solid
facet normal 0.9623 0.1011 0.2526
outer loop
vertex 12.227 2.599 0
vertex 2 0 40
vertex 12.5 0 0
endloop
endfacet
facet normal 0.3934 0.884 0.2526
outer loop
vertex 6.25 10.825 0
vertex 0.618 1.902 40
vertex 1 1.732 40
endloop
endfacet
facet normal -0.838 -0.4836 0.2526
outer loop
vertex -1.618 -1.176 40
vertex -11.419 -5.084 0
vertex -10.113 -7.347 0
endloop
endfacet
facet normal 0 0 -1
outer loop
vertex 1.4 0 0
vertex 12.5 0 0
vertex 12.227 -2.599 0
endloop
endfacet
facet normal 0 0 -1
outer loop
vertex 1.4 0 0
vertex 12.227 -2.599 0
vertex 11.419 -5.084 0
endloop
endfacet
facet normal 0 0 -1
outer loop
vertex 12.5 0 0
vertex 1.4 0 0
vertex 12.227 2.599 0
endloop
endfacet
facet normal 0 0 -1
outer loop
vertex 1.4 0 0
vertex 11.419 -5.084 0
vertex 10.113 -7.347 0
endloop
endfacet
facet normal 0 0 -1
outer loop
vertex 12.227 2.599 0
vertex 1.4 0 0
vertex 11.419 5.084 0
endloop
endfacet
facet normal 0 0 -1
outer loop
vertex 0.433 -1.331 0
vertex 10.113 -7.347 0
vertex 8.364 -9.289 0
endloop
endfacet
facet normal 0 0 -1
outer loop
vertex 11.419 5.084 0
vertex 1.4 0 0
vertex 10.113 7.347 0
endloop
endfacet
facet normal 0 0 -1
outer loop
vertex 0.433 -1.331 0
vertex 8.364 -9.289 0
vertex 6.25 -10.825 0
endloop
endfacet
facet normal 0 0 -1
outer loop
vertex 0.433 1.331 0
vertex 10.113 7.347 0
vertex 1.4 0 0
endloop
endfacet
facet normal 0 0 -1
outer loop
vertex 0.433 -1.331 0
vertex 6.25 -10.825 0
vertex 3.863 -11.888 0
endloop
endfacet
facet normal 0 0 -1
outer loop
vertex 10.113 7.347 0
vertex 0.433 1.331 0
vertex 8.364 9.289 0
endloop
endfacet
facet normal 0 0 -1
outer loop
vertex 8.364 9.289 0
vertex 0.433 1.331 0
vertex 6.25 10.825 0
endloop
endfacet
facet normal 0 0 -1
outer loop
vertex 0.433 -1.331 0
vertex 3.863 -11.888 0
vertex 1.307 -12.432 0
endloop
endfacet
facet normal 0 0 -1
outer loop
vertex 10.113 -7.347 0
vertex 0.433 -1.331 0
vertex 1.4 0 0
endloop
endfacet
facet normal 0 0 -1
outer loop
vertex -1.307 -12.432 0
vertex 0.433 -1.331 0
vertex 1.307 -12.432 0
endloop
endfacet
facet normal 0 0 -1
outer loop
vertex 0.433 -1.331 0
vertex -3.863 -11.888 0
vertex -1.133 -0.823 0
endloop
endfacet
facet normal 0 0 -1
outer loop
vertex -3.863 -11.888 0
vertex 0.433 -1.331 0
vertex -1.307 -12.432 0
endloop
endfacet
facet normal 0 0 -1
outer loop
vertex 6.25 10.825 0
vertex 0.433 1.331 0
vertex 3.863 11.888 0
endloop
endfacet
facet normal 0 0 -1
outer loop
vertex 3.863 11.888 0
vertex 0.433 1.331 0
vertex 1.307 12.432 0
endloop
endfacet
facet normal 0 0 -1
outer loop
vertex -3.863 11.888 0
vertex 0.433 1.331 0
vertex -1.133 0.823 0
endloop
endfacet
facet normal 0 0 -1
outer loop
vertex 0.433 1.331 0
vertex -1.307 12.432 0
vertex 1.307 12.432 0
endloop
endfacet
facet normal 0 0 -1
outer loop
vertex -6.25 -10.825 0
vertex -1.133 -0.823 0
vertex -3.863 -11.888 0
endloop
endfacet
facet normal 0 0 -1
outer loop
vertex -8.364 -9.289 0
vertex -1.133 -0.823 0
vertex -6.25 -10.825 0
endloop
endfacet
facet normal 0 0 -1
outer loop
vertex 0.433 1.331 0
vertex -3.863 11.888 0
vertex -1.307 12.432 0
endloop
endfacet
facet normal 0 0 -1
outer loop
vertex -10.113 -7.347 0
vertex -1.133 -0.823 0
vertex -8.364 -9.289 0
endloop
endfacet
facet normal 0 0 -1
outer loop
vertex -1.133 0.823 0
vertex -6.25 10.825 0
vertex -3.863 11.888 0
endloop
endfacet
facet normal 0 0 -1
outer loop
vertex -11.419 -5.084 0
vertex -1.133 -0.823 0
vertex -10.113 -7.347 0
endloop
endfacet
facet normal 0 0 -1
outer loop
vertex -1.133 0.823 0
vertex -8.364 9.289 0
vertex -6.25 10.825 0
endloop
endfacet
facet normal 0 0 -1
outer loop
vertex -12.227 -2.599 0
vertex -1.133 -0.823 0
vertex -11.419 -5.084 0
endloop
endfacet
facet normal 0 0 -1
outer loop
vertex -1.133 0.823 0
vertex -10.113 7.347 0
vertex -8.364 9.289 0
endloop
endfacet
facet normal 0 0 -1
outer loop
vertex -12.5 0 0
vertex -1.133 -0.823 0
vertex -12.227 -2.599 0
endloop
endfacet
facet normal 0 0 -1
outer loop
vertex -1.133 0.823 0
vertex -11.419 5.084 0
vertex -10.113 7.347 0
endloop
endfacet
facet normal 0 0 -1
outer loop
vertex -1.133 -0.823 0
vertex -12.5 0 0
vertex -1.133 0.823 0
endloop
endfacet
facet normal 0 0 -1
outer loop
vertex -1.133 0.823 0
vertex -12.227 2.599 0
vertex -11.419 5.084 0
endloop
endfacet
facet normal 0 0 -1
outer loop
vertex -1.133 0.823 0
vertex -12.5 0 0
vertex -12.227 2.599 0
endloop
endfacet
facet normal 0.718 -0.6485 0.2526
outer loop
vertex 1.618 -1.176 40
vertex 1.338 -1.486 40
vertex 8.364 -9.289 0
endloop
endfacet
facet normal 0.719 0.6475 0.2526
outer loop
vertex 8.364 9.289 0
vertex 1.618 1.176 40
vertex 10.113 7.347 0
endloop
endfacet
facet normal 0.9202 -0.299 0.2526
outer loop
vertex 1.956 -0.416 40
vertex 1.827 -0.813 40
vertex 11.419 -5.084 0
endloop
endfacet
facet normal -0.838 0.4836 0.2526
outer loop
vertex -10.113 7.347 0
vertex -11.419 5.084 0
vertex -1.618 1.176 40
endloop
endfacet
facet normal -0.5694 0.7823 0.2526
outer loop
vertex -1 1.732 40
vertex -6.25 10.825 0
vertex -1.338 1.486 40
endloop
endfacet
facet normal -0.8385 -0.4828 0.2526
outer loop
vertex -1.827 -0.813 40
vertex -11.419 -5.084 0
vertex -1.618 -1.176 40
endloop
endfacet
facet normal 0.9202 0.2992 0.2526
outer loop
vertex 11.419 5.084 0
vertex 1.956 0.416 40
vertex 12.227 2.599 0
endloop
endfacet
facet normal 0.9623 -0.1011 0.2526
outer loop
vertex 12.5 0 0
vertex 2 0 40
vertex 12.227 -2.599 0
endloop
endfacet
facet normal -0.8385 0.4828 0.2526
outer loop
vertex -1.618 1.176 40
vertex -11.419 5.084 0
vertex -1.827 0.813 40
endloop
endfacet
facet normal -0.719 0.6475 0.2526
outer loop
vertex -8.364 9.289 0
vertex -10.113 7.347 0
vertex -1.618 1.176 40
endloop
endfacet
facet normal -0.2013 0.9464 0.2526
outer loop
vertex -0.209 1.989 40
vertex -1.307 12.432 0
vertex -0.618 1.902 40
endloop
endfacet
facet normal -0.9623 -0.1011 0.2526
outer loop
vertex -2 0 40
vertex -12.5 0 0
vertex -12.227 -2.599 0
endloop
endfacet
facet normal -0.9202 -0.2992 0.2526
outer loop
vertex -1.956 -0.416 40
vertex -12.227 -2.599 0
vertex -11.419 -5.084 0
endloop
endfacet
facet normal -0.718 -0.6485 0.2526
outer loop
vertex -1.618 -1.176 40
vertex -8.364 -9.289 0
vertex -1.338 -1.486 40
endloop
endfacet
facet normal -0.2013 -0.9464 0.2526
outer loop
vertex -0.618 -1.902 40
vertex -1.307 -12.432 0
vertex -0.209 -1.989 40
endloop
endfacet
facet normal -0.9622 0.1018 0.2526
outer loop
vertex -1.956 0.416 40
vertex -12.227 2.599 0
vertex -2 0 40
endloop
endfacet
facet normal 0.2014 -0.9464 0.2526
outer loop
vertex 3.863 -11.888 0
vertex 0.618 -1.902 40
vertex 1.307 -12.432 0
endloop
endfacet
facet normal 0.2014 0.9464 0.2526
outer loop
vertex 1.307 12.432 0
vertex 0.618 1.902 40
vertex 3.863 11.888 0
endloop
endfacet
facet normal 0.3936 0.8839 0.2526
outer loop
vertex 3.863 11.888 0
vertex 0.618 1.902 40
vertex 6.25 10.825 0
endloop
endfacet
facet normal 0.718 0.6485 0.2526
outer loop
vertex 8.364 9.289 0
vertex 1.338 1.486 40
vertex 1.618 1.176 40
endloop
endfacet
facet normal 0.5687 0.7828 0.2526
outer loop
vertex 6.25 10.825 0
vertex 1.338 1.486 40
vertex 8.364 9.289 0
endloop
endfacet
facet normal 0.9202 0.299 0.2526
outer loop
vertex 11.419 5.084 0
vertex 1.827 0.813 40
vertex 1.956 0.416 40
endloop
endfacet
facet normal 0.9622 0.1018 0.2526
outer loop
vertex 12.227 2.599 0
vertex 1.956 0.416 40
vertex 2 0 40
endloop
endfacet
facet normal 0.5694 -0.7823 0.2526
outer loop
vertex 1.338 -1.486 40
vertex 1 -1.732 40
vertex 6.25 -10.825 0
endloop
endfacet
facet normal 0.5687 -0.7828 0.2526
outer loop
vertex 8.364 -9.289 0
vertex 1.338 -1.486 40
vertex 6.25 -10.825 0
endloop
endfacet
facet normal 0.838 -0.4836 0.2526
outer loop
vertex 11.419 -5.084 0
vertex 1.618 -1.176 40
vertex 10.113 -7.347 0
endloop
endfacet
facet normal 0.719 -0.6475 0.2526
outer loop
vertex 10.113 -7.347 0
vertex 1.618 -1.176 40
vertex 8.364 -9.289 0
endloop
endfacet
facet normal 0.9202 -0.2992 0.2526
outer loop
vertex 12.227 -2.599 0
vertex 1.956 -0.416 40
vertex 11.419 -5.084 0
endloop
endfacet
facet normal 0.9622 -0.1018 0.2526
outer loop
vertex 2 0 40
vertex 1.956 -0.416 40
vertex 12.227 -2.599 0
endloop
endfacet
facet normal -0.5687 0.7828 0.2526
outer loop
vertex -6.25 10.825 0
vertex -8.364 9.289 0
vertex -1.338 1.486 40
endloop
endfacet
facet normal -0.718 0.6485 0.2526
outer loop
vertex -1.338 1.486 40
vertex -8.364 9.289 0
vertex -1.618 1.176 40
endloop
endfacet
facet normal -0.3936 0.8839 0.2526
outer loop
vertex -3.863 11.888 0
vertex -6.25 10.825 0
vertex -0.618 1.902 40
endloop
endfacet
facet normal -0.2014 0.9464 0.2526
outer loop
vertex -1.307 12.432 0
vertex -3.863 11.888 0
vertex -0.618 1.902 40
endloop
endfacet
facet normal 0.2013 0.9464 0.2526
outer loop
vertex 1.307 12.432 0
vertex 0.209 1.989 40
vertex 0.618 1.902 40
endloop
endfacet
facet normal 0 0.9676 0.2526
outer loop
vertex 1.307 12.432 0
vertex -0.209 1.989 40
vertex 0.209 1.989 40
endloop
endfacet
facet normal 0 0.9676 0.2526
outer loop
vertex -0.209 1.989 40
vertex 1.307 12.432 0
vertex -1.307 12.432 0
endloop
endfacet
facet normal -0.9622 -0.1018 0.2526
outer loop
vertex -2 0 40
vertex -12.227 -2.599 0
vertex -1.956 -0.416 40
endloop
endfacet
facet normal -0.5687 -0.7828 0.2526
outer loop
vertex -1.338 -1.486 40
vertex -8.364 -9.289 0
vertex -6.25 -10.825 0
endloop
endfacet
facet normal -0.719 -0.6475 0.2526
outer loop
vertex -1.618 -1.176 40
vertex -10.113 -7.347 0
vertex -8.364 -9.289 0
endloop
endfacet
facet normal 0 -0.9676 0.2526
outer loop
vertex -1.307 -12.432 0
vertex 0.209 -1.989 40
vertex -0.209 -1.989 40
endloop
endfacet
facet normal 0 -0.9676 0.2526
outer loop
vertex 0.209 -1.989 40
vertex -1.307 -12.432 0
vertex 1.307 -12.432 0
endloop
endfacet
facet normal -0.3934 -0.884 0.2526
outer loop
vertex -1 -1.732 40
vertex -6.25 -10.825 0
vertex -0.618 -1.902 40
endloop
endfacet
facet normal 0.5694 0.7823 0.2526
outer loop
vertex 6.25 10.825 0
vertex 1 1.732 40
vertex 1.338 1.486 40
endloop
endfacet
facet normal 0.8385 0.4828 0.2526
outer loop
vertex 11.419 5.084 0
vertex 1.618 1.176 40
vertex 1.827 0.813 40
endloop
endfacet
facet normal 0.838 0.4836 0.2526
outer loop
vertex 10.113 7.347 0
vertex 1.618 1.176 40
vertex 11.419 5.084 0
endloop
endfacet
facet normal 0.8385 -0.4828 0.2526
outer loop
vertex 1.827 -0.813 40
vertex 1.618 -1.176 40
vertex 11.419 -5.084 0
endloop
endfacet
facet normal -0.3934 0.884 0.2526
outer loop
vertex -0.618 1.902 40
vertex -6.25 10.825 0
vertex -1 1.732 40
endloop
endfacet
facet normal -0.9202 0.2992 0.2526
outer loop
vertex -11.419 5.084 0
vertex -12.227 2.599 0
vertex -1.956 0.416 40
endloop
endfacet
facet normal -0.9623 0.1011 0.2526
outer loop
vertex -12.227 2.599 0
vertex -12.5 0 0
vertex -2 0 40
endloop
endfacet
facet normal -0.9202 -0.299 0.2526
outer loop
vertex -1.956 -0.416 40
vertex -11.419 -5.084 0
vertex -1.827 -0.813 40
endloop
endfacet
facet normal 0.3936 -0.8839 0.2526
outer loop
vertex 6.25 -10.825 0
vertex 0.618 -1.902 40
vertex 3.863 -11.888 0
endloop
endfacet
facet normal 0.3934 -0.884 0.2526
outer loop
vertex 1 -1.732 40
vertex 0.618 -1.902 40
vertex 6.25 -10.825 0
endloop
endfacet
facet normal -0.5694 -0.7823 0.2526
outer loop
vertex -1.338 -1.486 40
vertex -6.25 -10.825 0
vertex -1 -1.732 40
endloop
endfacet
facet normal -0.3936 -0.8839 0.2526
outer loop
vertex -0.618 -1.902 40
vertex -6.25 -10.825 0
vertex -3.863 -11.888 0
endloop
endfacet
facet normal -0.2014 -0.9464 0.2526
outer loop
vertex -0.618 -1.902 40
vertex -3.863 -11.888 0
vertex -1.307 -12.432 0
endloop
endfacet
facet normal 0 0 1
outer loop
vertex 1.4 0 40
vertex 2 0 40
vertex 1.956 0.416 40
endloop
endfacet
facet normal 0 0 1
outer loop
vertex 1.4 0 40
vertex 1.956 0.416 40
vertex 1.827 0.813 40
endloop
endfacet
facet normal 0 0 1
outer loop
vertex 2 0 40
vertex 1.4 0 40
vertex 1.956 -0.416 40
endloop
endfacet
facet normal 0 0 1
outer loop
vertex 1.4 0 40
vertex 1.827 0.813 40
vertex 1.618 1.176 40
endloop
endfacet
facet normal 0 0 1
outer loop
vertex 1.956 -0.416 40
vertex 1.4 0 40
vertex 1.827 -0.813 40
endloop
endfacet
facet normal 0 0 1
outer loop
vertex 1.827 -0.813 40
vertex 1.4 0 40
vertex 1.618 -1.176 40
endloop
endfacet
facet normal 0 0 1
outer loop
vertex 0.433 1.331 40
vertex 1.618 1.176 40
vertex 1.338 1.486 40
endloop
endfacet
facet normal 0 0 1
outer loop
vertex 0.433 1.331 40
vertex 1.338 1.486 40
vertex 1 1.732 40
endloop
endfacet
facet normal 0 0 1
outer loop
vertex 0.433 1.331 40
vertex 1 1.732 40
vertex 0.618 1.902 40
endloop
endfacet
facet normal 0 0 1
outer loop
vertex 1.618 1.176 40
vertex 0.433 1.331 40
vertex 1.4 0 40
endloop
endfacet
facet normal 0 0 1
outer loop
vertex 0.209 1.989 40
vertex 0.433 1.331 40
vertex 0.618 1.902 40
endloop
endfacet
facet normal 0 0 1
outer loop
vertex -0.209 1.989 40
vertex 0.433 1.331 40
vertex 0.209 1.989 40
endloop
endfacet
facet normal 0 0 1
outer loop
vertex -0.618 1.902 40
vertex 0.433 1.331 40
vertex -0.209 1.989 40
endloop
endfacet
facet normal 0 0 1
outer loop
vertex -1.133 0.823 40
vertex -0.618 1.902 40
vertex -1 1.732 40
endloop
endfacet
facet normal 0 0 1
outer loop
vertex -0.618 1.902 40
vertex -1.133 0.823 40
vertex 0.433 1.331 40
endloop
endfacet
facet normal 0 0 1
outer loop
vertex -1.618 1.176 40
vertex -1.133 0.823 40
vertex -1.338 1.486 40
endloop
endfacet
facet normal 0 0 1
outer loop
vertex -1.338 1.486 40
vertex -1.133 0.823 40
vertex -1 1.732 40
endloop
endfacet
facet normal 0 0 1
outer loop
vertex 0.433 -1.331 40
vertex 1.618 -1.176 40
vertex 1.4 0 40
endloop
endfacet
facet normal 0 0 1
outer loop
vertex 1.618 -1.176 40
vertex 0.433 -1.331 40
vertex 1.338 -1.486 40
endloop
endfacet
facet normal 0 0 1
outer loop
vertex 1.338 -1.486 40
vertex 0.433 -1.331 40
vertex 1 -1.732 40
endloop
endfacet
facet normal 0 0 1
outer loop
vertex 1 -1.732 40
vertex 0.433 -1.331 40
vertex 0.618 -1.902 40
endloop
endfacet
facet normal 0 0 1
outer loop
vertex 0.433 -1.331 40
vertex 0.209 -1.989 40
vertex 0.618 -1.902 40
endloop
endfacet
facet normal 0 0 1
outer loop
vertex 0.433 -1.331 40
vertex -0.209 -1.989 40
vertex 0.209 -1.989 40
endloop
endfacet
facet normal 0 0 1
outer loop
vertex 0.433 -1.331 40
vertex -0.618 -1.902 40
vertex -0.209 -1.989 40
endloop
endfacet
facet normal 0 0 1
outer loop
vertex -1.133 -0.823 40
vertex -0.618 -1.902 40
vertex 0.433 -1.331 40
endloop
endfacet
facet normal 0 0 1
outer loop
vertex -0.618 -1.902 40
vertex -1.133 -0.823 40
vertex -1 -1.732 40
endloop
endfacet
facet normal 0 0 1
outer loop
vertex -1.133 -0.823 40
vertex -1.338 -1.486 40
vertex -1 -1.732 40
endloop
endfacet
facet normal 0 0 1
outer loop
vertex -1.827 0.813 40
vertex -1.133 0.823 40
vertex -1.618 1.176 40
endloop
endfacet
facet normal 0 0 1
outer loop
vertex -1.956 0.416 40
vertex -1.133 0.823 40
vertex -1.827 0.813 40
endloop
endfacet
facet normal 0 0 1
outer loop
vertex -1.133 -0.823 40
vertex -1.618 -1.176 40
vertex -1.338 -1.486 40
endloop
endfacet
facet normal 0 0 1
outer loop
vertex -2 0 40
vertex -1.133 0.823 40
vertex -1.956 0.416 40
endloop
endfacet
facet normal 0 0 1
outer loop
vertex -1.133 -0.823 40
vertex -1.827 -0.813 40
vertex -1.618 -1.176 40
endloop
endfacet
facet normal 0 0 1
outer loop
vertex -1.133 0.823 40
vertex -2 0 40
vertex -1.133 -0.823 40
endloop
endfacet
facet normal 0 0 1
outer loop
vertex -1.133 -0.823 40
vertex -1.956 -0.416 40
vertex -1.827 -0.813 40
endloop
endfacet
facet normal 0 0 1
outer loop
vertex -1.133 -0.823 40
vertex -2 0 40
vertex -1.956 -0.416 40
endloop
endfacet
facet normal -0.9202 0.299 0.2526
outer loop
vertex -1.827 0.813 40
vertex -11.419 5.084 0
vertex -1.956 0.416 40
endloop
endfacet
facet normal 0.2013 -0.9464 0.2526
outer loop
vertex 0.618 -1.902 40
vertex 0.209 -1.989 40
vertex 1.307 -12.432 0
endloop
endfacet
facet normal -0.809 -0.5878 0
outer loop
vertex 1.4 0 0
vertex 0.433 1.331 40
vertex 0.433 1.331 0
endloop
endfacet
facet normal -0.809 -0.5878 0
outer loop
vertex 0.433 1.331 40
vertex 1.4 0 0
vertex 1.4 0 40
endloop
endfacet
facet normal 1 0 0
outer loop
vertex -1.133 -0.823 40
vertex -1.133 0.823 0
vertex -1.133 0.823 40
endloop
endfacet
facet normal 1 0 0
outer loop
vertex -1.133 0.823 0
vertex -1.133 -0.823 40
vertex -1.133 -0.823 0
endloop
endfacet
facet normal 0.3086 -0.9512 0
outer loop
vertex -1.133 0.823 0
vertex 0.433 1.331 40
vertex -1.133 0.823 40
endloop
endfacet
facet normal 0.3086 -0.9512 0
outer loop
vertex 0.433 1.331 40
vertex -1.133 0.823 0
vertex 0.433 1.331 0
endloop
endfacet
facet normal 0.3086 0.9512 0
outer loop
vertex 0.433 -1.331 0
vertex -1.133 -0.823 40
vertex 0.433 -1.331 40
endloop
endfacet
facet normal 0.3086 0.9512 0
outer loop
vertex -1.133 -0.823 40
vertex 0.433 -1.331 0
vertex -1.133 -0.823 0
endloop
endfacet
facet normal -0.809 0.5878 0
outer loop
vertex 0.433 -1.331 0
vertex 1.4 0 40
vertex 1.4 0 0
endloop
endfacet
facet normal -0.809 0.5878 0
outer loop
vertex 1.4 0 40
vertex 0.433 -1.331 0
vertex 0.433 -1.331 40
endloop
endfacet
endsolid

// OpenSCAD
//--------------------------------------------------
// Screw foot
//
// Tapered foot with M3 clearance hole.
//
//--------------------------------------------------

inside_height = 40;
screw_post_diameter = 25;
boolean_overlap = 1;
screw_hole_diameter = 2.8;
module screw_foot()
{
    difference()
    {
        //--------------------------------------------------
        // Main body
        //--------------------------------------------------

        cylinder(
            h = inside_height,
            d1 = screw_post_diameter,      // top
            d2 = 4                         // bottom
        );


        //--------------------------------------------------
        // Centre hole
        //--------------------------------------------------

        translate([0,0,-boolean_overlap])

        cylinder(
            h = inside_height + (2 * boolean_overlap),
            d = screw_hole_diameter
        );
    }
}
screw_foot();
